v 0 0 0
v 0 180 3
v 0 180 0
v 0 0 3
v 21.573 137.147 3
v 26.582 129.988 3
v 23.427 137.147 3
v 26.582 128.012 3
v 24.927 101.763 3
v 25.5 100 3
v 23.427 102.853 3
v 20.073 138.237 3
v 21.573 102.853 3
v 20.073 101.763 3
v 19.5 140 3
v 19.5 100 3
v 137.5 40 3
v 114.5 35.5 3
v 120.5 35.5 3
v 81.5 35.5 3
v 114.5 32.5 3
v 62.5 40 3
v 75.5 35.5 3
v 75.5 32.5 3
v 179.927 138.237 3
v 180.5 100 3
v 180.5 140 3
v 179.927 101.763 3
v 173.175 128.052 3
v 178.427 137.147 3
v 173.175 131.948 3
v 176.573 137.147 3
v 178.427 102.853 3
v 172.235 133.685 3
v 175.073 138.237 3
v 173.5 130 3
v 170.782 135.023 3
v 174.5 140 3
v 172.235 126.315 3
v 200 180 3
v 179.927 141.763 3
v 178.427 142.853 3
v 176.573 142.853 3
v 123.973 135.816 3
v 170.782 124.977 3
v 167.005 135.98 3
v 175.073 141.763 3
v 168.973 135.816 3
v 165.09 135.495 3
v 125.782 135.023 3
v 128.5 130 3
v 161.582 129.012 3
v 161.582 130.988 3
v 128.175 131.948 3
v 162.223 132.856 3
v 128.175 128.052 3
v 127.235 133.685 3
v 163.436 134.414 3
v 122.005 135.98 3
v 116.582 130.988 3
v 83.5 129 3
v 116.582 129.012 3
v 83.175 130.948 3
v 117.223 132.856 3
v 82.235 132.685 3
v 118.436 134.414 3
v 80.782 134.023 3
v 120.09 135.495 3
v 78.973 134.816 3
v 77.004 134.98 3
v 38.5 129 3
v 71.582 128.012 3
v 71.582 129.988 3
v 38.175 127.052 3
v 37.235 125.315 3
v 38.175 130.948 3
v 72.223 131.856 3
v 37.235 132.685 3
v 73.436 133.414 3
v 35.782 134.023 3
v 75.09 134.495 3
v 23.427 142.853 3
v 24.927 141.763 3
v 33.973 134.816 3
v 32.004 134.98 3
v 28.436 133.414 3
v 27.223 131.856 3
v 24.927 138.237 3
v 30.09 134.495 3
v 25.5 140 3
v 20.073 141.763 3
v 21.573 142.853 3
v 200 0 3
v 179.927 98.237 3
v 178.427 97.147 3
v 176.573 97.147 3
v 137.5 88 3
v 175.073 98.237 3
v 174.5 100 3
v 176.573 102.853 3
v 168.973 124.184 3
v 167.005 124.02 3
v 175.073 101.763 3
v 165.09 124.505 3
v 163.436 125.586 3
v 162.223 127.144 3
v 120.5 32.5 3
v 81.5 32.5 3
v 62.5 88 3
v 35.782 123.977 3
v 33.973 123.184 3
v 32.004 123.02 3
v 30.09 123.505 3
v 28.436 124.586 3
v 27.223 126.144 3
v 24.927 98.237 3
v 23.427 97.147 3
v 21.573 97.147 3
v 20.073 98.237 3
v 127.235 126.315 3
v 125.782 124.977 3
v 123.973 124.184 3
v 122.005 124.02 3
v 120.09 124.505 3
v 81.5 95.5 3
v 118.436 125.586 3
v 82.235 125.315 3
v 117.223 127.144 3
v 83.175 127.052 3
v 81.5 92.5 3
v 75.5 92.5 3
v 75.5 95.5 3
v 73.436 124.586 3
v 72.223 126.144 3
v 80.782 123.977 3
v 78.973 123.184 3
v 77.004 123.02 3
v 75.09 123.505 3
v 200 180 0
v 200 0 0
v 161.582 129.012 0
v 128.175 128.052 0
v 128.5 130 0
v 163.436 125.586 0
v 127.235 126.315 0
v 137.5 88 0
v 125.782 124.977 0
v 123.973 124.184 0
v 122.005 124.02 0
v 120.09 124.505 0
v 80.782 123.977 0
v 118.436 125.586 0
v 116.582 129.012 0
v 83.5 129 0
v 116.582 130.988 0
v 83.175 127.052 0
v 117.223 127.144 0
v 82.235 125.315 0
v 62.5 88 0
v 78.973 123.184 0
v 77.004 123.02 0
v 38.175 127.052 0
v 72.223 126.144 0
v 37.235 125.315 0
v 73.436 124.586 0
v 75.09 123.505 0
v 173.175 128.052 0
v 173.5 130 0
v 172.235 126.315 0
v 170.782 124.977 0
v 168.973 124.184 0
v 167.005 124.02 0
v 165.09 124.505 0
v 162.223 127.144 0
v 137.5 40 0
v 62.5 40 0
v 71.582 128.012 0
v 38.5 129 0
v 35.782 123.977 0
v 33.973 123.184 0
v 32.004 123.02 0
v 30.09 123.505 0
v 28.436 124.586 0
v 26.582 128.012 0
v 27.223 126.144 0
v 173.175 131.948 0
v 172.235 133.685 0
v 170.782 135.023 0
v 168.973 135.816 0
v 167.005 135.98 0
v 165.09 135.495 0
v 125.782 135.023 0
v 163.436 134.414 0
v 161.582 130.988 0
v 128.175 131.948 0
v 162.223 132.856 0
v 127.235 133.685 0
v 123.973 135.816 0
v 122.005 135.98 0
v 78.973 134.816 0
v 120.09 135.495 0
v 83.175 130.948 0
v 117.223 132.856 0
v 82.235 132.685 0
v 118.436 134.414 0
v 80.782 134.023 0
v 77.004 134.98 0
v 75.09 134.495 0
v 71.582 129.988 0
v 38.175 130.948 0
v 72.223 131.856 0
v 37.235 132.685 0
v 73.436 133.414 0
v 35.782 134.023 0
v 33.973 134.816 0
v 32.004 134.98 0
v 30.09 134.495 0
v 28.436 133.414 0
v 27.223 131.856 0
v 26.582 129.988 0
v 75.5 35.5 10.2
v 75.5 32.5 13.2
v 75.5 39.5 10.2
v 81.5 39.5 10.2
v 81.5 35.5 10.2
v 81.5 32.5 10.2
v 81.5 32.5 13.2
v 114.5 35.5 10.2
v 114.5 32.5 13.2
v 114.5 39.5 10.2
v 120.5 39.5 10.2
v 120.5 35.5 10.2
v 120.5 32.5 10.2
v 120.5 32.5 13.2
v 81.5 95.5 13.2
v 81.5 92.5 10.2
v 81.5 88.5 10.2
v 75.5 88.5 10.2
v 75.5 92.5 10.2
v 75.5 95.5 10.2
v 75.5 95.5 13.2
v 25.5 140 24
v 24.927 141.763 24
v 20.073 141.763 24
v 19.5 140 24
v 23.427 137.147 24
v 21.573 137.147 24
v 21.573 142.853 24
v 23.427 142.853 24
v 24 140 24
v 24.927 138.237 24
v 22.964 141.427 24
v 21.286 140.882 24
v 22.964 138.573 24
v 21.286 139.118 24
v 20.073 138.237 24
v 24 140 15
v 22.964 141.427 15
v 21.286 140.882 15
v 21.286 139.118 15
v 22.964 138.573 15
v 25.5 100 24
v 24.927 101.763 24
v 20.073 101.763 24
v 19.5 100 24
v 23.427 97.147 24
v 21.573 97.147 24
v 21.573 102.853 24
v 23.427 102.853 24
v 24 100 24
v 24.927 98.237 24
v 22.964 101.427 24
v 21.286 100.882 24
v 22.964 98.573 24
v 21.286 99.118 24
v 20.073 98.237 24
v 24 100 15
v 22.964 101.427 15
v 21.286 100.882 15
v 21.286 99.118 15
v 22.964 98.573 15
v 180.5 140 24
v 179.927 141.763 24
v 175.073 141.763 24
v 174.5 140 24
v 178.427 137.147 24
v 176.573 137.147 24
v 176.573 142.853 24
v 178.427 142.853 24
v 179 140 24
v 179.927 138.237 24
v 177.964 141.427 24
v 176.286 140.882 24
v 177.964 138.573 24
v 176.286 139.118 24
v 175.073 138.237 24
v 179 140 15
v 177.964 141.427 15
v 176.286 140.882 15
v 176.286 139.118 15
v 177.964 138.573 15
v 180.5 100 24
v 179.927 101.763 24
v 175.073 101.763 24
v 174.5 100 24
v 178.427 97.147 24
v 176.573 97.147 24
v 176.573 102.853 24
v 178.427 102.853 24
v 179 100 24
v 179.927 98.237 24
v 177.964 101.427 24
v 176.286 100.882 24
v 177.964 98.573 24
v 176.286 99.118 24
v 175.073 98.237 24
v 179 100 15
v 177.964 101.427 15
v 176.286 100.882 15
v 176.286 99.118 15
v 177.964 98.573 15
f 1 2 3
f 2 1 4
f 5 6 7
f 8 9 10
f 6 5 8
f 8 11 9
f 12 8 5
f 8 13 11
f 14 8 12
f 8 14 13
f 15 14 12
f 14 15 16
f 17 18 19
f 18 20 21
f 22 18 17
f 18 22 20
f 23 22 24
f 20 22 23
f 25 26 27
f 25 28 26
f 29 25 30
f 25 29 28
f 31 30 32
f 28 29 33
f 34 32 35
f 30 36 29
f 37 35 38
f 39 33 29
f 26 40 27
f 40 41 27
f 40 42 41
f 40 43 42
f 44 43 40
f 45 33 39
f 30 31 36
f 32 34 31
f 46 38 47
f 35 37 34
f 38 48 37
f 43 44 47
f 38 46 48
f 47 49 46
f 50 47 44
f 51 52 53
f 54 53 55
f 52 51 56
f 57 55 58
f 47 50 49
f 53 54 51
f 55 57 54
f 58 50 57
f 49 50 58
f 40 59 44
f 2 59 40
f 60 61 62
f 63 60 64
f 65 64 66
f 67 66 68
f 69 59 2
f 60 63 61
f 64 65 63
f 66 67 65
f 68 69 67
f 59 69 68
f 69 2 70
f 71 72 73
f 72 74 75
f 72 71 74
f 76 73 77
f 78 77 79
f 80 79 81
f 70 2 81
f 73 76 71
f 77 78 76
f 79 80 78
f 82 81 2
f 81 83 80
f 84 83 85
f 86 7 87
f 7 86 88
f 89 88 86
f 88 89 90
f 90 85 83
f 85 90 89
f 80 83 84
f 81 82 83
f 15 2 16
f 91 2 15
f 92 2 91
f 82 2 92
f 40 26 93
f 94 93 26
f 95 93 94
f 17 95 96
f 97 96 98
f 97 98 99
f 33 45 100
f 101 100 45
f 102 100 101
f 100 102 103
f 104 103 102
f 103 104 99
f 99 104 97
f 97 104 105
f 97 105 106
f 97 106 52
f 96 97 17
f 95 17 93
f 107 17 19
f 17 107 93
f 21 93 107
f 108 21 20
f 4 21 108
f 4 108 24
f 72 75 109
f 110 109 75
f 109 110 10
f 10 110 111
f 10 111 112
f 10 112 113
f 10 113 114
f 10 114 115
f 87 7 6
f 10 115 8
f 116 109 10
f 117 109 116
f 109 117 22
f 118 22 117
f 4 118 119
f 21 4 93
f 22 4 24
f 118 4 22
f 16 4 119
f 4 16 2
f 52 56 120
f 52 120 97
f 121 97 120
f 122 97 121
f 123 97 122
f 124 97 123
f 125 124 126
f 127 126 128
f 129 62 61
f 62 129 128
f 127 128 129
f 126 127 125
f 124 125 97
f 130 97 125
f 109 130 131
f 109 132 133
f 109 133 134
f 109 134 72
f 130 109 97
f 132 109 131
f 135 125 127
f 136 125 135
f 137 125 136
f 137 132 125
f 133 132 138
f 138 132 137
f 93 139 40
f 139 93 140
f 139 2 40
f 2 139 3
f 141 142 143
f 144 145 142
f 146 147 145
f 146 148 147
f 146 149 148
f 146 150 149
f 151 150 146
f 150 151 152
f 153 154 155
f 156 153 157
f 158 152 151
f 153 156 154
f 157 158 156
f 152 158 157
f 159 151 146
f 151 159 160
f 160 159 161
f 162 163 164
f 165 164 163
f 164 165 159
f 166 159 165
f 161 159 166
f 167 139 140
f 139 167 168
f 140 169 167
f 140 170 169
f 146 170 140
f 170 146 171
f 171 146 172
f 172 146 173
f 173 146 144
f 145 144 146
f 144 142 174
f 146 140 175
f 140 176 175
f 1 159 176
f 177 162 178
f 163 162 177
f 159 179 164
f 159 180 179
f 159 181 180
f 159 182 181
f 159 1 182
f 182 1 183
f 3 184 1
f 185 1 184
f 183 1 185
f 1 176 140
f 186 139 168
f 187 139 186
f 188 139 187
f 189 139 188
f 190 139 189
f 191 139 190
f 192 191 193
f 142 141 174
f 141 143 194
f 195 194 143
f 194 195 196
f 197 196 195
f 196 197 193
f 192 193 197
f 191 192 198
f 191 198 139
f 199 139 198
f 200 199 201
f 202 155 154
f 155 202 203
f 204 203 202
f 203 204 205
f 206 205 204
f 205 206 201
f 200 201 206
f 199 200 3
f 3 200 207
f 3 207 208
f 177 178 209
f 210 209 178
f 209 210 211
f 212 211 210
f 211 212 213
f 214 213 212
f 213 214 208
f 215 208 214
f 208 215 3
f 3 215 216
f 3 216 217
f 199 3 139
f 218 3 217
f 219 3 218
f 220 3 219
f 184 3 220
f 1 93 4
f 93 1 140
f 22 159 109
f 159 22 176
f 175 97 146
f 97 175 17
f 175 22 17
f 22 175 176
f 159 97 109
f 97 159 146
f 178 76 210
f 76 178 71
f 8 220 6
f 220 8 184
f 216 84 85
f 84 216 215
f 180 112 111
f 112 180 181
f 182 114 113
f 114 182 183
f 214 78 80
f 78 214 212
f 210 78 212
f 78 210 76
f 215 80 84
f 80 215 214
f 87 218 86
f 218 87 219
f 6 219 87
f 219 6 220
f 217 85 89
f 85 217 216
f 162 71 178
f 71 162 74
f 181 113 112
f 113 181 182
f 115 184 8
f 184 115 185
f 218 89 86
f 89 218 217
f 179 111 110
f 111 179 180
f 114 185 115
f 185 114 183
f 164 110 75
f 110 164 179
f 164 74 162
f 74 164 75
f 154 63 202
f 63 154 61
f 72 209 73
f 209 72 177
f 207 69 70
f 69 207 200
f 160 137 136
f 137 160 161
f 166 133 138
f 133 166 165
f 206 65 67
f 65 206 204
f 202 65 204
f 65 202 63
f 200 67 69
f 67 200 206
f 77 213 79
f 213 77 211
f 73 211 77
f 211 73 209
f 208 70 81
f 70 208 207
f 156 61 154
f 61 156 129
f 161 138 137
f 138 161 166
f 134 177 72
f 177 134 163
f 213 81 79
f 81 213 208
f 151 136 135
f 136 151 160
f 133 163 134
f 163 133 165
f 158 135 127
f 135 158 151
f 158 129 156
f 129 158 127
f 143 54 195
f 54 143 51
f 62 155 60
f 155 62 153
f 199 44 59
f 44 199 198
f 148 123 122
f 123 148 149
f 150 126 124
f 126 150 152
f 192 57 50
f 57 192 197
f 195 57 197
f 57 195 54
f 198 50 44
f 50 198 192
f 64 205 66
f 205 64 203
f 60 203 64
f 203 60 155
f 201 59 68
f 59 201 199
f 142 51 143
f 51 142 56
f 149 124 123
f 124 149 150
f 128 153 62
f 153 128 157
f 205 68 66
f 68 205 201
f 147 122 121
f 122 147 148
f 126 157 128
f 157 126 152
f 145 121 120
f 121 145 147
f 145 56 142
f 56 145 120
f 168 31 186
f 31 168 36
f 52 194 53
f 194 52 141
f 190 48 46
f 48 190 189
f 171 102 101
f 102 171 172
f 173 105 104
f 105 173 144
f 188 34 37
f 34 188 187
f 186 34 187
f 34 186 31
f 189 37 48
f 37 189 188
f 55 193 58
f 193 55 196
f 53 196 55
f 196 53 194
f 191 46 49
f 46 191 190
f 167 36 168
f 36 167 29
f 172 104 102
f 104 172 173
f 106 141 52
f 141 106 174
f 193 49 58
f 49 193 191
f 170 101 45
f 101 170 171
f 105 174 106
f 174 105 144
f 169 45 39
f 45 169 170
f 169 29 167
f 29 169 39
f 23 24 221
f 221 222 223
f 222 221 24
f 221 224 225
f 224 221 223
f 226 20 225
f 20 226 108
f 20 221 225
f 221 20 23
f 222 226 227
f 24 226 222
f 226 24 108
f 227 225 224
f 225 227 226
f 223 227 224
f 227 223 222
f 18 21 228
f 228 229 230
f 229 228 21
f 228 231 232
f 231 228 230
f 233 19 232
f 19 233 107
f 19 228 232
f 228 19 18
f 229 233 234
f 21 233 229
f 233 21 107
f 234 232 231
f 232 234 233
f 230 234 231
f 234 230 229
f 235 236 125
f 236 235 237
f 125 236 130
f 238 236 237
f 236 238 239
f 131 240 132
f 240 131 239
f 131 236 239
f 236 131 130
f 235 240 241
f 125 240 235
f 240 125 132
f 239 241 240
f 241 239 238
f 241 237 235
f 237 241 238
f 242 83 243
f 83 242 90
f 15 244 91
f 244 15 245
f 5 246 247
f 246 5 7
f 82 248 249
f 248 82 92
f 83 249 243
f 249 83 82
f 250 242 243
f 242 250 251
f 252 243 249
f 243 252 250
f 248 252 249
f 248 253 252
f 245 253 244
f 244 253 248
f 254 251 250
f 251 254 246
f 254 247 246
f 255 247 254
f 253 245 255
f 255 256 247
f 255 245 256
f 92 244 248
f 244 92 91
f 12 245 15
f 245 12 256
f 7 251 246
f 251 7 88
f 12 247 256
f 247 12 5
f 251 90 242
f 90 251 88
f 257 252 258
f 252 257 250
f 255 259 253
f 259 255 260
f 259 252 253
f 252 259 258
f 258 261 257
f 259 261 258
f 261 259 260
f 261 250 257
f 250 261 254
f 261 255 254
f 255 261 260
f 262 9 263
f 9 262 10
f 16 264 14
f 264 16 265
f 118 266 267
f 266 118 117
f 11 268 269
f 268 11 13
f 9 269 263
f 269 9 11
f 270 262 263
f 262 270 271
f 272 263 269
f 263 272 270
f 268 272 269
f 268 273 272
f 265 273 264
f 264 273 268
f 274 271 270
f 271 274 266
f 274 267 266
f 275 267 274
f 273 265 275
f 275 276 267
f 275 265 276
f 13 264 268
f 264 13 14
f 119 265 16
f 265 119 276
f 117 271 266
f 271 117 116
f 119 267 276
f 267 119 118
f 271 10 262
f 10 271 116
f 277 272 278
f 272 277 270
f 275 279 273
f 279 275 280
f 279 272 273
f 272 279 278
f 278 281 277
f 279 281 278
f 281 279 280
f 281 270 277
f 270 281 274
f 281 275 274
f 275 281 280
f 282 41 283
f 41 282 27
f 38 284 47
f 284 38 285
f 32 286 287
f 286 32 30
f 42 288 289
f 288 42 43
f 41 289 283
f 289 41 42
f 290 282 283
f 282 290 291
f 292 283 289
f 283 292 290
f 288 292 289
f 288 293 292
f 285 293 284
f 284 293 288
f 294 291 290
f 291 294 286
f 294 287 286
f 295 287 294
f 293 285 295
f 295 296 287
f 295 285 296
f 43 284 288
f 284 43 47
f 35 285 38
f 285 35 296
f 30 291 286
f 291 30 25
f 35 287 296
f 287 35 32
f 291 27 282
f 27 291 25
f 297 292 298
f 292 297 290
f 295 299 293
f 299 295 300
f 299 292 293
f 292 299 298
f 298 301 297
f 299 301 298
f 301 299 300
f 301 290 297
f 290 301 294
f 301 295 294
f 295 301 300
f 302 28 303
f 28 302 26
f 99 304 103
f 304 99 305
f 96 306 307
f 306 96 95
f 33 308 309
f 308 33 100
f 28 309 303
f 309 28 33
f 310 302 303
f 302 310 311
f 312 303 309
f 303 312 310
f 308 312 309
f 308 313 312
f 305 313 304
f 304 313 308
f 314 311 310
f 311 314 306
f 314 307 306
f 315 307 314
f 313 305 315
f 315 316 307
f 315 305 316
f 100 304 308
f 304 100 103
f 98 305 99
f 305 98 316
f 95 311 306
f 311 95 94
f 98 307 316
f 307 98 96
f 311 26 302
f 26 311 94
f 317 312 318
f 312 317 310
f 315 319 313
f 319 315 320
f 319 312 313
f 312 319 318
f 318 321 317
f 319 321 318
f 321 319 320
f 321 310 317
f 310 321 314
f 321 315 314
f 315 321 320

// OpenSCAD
encoder_zero_x = 100-(45/2)-45-20;
encoder_zero_y = 130-35;
encoder_hole_size = 6;

difference() {
    cube([200, 180, 3]);
    translate([100-(75/2), 40, -5])
        cube([75, 48, 20]);
    translate([100-(45/2)-45, 129, -2])
        cylinder(h=7, r1=encoder_hole_size, r2=encoder_hole_size);
    translate([100-(45/2), 129, -2])
        cylinder(h=7, r1=encoder_hole_size, r2=encoder_hole_size);
    translate([100+(45/2), 130, -2])
        cylinder(h=7, r1=encoder_hole_size, r2=encoder_hole_size);
    translate([100+(45/2)+45, 130, -2])
        cylinder(h=7, r1=encoder_hole_size, r2=encoder_hole_size);   
}

translate([75.5, 32.5, 3]) hook();
translate([114.5, 32.5, 3]) hook();
translate([81.5, 95.5, 3]) rotate([0, 0, 180]) hook();

translate([encoder_zero_x+10, encoder_zero_y+45, 0])
        standoff();
translate([encoder_zero_x+10, encoder_zero_y+5, 0])
        standoff();
translate([encoder_zero_x+165, encoder_zero_y+45, 0])
        standoff();
translate([encoder_zero_x+165, encoder_zero_y+5, 0])
        standoff();

module hook() {
    cube([6, 3, 7.2]);
    translate([6, 7, 7.2])
    rotate([90, 0, 0])
    rotate([0, 270, 0])
    linear_extrude(height=6) {
        polygon([[0,0], [7,0], [7,3], [0, 0]]);
    }      
}

module standoff() {
    difference() {
        cylinder(h=24, r1=3, r2=3);
        translate([0, 0, 15])
            cylinder(h=10, r1=1.5, r2=1.5);
    }
}
